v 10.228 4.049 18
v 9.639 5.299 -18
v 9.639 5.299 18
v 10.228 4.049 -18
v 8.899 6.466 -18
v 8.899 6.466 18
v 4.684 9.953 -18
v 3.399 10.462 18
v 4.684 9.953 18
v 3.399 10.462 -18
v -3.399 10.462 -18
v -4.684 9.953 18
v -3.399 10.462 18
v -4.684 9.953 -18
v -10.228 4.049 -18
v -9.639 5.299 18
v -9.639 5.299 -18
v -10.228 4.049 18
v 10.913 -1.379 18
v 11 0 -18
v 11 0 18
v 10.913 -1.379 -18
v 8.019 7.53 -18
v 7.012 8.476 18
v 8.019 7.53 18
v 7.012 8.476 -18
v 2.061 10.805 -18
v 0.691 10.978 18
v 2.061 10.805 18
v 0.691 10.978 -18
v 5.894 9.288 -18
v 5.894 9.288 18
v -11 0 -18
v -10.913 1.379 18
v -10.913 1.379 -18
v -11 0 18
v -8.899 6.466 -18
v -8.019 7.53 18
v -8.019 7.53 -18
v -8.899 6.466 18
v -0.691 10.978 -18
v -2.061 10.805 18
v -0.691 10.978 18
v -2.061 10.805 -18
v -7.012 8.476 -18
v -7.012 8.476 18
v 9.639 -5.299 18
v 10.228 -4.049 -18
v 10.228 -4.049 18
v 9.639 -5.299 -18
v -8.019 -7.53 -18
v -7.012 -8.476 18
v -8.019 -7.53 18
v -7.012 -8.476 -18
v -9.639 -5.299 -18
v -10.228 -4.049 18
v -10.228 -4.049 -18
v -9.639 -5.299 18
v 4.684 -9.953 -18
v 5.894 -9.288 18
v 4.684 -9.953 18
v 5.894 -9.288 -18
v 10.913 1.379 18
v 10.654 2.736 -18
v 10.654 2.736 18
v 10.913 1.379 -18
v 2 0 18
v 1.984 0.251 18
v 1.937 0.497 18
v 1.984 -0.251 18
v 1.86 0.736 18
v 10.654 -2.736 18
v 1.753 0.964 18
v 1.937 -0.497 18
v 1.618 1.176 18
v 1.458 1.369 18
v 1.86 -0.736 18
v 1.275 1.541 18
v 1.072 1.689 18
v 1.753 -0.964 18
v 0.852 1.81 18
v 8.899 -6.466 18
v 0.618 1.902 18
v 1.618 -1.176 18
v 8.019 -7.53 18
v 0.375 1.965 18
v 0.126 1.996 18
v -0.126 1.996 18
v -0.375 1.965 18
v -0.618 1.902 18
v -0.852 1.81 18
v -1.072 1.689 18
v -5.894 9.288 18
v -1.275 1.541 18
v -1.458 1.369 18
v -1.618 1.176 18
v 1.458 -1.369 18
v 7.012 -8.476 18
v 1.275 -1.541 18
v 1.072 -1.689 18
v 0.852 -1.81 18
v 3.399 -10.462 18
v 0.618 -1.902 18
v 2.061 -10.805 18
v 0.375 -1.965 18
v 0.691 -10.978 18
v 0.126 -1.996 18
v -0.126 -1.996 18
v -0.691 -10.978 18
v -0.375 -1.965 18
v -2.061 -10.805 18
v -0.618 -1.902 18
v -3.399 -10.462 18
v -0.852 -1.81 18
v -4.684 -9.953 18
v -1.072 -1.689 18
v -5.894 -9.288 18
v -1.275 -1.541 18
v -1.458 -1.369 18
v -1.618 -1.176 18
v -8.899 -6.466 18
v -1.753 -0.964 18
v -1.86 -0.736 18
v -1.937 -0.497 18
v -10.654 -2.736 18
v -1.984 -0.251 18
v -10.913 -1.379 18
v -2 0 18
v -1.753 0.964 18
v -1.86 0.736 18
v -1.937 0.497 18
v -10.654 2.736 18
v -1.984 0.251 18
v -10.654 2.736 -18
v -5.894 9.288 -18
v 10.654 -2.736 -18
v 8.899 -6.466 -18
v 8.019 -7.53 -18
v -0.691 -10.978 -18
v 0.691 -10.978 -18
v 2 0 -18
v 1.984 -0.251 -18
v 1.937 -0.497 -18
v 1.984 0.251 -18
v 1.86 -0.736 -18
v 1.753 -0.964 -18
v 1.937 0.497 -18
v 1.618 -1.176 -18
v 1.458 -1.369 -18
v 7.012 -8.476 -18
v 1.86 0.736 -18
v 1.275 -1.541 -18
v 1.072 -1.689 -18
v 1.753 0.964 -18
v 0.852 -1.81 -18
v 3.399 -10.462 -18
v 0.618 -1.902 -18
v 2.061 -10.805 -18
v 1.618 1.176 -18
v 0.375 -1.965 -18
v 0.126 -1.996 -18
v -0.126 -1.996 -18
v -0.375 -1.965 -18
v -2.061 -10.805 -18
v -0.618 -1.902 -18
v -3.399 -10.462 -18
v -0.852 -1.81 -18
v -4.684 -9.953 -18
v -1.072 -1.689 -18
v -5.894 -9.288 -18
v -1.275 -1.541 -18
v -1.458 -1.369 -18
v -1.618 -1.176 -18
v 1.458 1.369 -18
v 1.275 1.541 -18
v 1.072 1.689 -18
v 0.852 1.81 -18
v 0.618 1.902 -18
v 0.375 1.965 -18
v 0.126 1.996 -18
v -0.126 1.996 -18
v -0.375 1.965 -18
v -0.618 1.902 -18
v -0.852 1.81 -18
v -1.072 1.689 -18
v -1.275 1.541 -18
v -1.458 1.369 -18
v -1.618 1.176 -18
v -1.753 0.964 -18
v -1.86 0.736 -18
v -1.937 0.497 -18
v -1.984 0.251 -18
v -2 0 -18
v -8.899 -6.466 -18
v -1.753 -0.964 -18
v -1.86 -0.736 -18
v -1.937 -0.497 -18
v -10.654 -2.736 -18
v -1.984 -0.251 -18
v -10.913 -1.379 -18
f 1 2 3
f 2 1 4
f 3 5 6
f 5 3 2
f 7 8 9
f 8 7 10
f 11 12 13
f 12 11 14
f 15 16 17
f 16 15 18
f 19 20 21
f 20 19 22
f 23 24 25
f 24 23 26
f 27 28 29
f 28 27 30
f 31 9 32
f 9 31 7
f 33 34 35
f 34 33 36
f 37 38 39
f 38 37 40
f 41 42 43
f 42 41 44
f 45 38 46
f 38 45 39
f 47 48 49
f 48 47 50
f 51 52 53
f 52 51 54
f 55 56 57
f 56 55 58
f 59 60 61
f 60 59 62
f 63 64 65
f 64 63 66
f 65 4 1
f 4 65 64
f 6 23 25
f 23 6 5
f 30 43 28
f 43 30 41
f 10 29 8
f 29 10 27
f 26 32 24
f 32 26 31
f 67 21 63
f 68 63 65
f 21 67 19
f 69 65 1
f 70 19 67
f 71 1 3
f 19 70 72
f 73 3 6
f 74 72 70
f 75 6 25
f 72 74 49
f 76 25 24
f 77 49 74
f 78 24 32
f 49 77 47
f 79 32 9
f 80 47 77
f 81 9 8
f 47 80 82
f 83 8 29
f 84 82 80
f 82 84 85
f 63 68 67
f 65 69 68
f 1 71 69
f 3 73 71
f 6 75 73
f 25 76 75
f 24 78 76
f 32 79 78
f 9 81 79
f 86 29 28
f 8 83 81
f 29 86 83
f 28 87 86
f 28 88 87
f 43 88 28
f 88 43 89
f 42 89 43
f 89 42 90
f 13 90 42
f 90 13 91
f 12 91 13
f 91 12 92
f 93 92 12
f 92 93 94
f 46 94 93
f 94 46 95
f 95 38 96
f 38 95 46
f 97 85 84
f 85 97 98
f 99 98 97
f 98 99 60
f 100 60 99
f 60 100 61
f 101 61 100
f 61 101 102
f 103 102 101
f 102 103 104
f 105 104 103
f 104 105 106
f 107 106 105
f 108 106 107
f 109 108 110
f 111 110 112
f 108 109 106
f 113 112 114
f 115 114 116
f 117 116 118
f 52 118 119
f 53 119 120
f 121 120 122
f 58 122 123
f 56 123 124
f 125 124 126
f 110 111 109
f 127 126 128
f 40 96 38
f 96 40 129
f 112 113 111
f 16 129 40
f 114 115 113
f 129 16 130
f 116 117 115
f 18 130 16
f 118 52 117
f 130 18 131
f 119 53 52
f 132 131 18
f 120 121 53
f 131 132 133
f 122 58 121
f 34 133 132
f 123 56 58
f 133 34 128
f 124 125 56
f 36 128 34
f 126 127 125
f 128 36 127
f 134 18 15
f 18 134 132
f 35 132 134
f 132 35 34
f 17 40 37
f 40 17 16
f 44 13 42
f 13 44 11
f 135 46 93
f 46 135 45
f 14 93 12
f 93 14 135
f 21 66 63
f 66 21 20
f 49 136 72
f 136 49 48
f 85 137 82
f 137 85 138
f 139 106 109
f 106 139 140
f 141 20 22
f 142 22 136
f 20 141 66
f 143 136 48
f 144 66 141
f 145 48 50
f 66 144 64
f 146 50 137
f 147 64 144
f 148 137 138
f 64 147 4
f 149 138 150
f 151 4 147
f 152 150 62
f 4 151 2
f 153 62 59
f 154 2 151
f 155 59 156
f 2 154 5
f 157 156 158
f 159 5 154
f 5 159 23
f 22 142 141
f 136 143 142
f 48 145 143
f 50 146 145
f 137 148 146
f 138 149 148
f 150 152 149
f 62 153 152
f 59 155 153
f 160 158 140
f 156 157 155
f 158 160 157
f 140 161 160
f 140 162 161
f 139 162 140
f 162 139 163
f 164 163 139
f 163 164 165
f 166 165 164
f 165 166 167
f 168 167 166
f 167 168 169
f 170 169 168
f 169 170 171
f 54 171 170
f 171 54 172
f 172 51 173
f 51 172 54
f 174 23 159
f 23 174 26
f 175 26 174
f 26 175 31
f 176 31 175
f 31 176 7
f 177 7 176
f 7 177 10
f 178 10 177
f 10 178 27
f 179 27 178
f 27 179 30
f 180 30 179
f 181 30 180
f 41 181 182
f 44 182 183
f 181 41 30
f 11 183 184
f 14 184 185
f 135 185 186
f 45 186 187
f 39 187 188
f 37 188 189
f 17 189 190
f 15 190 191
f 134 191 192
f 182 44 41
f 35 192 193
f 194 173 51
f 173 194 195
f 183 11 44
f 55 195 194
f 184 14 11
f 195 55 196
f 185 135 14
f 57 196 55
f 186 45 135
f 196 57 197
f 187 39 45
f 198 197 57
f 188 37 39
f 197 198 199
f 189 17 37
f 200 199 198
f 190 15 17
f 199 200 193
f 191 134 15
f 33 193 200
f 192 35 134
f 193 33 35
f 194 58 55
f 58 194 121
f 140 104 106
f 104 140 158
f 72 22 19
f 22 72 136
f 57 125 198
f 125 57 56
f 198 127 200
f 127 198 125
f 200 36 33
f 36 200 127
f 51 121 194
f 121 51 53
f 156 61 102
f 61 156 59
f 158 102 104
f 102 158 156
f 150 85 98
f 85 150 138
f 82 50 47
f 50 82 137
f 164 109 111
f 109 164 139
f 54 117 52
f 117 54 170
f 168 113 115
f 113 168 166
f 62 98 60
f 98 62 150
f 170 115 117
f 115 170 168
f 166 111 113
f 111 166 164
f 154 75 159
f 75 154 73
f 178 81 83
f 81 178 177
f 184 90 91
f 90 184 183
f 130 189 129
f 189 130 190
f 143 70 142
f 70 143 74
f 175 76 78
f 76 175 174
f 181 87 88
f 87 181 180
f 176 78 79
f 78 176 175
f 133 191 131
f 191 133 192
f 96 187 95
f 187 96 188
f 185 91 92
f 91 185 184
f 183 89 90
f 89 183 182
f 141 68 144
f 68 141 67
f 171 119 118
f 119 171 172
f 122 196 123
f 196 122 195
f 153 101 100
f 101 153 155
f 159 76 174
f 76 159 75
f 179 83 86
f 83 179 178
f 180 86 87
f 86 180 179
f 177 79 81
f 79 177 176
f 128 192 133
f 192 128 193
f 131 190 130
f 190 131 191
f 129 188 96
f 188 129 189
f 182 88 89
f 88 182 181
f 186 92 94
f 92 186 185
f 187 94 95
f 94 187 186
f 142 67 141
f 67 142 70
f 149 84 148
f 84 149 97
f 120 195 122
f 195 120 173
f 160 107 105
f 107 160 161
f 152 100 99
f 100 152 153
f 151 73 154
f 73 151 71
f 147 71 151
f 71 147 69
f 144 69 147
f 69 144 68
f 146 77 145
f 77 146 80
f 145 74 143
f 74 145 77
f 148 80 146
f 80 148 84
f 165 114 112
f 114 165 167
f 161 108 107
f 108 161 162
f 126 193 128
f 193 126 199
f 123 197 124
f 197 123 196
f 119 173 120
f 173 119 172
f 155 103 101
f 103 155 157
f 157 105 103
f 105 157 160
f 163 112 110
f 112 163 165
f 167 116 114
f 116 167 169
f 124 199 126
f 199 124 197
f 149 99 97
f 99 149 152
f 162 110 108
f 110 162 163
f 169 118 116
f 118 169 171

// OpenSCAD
$fn = 50;


difference() {
	union() {
		translate(v = [0, 0, -18.0000000000]) {
			cylinder(h = 36, r = 11.0000000000);
		}
	}
	union() {
		translate(v = [0, 0, -100.0000000000]) {
			cylinder(h = 200, r = 2);
		}
	}
}
